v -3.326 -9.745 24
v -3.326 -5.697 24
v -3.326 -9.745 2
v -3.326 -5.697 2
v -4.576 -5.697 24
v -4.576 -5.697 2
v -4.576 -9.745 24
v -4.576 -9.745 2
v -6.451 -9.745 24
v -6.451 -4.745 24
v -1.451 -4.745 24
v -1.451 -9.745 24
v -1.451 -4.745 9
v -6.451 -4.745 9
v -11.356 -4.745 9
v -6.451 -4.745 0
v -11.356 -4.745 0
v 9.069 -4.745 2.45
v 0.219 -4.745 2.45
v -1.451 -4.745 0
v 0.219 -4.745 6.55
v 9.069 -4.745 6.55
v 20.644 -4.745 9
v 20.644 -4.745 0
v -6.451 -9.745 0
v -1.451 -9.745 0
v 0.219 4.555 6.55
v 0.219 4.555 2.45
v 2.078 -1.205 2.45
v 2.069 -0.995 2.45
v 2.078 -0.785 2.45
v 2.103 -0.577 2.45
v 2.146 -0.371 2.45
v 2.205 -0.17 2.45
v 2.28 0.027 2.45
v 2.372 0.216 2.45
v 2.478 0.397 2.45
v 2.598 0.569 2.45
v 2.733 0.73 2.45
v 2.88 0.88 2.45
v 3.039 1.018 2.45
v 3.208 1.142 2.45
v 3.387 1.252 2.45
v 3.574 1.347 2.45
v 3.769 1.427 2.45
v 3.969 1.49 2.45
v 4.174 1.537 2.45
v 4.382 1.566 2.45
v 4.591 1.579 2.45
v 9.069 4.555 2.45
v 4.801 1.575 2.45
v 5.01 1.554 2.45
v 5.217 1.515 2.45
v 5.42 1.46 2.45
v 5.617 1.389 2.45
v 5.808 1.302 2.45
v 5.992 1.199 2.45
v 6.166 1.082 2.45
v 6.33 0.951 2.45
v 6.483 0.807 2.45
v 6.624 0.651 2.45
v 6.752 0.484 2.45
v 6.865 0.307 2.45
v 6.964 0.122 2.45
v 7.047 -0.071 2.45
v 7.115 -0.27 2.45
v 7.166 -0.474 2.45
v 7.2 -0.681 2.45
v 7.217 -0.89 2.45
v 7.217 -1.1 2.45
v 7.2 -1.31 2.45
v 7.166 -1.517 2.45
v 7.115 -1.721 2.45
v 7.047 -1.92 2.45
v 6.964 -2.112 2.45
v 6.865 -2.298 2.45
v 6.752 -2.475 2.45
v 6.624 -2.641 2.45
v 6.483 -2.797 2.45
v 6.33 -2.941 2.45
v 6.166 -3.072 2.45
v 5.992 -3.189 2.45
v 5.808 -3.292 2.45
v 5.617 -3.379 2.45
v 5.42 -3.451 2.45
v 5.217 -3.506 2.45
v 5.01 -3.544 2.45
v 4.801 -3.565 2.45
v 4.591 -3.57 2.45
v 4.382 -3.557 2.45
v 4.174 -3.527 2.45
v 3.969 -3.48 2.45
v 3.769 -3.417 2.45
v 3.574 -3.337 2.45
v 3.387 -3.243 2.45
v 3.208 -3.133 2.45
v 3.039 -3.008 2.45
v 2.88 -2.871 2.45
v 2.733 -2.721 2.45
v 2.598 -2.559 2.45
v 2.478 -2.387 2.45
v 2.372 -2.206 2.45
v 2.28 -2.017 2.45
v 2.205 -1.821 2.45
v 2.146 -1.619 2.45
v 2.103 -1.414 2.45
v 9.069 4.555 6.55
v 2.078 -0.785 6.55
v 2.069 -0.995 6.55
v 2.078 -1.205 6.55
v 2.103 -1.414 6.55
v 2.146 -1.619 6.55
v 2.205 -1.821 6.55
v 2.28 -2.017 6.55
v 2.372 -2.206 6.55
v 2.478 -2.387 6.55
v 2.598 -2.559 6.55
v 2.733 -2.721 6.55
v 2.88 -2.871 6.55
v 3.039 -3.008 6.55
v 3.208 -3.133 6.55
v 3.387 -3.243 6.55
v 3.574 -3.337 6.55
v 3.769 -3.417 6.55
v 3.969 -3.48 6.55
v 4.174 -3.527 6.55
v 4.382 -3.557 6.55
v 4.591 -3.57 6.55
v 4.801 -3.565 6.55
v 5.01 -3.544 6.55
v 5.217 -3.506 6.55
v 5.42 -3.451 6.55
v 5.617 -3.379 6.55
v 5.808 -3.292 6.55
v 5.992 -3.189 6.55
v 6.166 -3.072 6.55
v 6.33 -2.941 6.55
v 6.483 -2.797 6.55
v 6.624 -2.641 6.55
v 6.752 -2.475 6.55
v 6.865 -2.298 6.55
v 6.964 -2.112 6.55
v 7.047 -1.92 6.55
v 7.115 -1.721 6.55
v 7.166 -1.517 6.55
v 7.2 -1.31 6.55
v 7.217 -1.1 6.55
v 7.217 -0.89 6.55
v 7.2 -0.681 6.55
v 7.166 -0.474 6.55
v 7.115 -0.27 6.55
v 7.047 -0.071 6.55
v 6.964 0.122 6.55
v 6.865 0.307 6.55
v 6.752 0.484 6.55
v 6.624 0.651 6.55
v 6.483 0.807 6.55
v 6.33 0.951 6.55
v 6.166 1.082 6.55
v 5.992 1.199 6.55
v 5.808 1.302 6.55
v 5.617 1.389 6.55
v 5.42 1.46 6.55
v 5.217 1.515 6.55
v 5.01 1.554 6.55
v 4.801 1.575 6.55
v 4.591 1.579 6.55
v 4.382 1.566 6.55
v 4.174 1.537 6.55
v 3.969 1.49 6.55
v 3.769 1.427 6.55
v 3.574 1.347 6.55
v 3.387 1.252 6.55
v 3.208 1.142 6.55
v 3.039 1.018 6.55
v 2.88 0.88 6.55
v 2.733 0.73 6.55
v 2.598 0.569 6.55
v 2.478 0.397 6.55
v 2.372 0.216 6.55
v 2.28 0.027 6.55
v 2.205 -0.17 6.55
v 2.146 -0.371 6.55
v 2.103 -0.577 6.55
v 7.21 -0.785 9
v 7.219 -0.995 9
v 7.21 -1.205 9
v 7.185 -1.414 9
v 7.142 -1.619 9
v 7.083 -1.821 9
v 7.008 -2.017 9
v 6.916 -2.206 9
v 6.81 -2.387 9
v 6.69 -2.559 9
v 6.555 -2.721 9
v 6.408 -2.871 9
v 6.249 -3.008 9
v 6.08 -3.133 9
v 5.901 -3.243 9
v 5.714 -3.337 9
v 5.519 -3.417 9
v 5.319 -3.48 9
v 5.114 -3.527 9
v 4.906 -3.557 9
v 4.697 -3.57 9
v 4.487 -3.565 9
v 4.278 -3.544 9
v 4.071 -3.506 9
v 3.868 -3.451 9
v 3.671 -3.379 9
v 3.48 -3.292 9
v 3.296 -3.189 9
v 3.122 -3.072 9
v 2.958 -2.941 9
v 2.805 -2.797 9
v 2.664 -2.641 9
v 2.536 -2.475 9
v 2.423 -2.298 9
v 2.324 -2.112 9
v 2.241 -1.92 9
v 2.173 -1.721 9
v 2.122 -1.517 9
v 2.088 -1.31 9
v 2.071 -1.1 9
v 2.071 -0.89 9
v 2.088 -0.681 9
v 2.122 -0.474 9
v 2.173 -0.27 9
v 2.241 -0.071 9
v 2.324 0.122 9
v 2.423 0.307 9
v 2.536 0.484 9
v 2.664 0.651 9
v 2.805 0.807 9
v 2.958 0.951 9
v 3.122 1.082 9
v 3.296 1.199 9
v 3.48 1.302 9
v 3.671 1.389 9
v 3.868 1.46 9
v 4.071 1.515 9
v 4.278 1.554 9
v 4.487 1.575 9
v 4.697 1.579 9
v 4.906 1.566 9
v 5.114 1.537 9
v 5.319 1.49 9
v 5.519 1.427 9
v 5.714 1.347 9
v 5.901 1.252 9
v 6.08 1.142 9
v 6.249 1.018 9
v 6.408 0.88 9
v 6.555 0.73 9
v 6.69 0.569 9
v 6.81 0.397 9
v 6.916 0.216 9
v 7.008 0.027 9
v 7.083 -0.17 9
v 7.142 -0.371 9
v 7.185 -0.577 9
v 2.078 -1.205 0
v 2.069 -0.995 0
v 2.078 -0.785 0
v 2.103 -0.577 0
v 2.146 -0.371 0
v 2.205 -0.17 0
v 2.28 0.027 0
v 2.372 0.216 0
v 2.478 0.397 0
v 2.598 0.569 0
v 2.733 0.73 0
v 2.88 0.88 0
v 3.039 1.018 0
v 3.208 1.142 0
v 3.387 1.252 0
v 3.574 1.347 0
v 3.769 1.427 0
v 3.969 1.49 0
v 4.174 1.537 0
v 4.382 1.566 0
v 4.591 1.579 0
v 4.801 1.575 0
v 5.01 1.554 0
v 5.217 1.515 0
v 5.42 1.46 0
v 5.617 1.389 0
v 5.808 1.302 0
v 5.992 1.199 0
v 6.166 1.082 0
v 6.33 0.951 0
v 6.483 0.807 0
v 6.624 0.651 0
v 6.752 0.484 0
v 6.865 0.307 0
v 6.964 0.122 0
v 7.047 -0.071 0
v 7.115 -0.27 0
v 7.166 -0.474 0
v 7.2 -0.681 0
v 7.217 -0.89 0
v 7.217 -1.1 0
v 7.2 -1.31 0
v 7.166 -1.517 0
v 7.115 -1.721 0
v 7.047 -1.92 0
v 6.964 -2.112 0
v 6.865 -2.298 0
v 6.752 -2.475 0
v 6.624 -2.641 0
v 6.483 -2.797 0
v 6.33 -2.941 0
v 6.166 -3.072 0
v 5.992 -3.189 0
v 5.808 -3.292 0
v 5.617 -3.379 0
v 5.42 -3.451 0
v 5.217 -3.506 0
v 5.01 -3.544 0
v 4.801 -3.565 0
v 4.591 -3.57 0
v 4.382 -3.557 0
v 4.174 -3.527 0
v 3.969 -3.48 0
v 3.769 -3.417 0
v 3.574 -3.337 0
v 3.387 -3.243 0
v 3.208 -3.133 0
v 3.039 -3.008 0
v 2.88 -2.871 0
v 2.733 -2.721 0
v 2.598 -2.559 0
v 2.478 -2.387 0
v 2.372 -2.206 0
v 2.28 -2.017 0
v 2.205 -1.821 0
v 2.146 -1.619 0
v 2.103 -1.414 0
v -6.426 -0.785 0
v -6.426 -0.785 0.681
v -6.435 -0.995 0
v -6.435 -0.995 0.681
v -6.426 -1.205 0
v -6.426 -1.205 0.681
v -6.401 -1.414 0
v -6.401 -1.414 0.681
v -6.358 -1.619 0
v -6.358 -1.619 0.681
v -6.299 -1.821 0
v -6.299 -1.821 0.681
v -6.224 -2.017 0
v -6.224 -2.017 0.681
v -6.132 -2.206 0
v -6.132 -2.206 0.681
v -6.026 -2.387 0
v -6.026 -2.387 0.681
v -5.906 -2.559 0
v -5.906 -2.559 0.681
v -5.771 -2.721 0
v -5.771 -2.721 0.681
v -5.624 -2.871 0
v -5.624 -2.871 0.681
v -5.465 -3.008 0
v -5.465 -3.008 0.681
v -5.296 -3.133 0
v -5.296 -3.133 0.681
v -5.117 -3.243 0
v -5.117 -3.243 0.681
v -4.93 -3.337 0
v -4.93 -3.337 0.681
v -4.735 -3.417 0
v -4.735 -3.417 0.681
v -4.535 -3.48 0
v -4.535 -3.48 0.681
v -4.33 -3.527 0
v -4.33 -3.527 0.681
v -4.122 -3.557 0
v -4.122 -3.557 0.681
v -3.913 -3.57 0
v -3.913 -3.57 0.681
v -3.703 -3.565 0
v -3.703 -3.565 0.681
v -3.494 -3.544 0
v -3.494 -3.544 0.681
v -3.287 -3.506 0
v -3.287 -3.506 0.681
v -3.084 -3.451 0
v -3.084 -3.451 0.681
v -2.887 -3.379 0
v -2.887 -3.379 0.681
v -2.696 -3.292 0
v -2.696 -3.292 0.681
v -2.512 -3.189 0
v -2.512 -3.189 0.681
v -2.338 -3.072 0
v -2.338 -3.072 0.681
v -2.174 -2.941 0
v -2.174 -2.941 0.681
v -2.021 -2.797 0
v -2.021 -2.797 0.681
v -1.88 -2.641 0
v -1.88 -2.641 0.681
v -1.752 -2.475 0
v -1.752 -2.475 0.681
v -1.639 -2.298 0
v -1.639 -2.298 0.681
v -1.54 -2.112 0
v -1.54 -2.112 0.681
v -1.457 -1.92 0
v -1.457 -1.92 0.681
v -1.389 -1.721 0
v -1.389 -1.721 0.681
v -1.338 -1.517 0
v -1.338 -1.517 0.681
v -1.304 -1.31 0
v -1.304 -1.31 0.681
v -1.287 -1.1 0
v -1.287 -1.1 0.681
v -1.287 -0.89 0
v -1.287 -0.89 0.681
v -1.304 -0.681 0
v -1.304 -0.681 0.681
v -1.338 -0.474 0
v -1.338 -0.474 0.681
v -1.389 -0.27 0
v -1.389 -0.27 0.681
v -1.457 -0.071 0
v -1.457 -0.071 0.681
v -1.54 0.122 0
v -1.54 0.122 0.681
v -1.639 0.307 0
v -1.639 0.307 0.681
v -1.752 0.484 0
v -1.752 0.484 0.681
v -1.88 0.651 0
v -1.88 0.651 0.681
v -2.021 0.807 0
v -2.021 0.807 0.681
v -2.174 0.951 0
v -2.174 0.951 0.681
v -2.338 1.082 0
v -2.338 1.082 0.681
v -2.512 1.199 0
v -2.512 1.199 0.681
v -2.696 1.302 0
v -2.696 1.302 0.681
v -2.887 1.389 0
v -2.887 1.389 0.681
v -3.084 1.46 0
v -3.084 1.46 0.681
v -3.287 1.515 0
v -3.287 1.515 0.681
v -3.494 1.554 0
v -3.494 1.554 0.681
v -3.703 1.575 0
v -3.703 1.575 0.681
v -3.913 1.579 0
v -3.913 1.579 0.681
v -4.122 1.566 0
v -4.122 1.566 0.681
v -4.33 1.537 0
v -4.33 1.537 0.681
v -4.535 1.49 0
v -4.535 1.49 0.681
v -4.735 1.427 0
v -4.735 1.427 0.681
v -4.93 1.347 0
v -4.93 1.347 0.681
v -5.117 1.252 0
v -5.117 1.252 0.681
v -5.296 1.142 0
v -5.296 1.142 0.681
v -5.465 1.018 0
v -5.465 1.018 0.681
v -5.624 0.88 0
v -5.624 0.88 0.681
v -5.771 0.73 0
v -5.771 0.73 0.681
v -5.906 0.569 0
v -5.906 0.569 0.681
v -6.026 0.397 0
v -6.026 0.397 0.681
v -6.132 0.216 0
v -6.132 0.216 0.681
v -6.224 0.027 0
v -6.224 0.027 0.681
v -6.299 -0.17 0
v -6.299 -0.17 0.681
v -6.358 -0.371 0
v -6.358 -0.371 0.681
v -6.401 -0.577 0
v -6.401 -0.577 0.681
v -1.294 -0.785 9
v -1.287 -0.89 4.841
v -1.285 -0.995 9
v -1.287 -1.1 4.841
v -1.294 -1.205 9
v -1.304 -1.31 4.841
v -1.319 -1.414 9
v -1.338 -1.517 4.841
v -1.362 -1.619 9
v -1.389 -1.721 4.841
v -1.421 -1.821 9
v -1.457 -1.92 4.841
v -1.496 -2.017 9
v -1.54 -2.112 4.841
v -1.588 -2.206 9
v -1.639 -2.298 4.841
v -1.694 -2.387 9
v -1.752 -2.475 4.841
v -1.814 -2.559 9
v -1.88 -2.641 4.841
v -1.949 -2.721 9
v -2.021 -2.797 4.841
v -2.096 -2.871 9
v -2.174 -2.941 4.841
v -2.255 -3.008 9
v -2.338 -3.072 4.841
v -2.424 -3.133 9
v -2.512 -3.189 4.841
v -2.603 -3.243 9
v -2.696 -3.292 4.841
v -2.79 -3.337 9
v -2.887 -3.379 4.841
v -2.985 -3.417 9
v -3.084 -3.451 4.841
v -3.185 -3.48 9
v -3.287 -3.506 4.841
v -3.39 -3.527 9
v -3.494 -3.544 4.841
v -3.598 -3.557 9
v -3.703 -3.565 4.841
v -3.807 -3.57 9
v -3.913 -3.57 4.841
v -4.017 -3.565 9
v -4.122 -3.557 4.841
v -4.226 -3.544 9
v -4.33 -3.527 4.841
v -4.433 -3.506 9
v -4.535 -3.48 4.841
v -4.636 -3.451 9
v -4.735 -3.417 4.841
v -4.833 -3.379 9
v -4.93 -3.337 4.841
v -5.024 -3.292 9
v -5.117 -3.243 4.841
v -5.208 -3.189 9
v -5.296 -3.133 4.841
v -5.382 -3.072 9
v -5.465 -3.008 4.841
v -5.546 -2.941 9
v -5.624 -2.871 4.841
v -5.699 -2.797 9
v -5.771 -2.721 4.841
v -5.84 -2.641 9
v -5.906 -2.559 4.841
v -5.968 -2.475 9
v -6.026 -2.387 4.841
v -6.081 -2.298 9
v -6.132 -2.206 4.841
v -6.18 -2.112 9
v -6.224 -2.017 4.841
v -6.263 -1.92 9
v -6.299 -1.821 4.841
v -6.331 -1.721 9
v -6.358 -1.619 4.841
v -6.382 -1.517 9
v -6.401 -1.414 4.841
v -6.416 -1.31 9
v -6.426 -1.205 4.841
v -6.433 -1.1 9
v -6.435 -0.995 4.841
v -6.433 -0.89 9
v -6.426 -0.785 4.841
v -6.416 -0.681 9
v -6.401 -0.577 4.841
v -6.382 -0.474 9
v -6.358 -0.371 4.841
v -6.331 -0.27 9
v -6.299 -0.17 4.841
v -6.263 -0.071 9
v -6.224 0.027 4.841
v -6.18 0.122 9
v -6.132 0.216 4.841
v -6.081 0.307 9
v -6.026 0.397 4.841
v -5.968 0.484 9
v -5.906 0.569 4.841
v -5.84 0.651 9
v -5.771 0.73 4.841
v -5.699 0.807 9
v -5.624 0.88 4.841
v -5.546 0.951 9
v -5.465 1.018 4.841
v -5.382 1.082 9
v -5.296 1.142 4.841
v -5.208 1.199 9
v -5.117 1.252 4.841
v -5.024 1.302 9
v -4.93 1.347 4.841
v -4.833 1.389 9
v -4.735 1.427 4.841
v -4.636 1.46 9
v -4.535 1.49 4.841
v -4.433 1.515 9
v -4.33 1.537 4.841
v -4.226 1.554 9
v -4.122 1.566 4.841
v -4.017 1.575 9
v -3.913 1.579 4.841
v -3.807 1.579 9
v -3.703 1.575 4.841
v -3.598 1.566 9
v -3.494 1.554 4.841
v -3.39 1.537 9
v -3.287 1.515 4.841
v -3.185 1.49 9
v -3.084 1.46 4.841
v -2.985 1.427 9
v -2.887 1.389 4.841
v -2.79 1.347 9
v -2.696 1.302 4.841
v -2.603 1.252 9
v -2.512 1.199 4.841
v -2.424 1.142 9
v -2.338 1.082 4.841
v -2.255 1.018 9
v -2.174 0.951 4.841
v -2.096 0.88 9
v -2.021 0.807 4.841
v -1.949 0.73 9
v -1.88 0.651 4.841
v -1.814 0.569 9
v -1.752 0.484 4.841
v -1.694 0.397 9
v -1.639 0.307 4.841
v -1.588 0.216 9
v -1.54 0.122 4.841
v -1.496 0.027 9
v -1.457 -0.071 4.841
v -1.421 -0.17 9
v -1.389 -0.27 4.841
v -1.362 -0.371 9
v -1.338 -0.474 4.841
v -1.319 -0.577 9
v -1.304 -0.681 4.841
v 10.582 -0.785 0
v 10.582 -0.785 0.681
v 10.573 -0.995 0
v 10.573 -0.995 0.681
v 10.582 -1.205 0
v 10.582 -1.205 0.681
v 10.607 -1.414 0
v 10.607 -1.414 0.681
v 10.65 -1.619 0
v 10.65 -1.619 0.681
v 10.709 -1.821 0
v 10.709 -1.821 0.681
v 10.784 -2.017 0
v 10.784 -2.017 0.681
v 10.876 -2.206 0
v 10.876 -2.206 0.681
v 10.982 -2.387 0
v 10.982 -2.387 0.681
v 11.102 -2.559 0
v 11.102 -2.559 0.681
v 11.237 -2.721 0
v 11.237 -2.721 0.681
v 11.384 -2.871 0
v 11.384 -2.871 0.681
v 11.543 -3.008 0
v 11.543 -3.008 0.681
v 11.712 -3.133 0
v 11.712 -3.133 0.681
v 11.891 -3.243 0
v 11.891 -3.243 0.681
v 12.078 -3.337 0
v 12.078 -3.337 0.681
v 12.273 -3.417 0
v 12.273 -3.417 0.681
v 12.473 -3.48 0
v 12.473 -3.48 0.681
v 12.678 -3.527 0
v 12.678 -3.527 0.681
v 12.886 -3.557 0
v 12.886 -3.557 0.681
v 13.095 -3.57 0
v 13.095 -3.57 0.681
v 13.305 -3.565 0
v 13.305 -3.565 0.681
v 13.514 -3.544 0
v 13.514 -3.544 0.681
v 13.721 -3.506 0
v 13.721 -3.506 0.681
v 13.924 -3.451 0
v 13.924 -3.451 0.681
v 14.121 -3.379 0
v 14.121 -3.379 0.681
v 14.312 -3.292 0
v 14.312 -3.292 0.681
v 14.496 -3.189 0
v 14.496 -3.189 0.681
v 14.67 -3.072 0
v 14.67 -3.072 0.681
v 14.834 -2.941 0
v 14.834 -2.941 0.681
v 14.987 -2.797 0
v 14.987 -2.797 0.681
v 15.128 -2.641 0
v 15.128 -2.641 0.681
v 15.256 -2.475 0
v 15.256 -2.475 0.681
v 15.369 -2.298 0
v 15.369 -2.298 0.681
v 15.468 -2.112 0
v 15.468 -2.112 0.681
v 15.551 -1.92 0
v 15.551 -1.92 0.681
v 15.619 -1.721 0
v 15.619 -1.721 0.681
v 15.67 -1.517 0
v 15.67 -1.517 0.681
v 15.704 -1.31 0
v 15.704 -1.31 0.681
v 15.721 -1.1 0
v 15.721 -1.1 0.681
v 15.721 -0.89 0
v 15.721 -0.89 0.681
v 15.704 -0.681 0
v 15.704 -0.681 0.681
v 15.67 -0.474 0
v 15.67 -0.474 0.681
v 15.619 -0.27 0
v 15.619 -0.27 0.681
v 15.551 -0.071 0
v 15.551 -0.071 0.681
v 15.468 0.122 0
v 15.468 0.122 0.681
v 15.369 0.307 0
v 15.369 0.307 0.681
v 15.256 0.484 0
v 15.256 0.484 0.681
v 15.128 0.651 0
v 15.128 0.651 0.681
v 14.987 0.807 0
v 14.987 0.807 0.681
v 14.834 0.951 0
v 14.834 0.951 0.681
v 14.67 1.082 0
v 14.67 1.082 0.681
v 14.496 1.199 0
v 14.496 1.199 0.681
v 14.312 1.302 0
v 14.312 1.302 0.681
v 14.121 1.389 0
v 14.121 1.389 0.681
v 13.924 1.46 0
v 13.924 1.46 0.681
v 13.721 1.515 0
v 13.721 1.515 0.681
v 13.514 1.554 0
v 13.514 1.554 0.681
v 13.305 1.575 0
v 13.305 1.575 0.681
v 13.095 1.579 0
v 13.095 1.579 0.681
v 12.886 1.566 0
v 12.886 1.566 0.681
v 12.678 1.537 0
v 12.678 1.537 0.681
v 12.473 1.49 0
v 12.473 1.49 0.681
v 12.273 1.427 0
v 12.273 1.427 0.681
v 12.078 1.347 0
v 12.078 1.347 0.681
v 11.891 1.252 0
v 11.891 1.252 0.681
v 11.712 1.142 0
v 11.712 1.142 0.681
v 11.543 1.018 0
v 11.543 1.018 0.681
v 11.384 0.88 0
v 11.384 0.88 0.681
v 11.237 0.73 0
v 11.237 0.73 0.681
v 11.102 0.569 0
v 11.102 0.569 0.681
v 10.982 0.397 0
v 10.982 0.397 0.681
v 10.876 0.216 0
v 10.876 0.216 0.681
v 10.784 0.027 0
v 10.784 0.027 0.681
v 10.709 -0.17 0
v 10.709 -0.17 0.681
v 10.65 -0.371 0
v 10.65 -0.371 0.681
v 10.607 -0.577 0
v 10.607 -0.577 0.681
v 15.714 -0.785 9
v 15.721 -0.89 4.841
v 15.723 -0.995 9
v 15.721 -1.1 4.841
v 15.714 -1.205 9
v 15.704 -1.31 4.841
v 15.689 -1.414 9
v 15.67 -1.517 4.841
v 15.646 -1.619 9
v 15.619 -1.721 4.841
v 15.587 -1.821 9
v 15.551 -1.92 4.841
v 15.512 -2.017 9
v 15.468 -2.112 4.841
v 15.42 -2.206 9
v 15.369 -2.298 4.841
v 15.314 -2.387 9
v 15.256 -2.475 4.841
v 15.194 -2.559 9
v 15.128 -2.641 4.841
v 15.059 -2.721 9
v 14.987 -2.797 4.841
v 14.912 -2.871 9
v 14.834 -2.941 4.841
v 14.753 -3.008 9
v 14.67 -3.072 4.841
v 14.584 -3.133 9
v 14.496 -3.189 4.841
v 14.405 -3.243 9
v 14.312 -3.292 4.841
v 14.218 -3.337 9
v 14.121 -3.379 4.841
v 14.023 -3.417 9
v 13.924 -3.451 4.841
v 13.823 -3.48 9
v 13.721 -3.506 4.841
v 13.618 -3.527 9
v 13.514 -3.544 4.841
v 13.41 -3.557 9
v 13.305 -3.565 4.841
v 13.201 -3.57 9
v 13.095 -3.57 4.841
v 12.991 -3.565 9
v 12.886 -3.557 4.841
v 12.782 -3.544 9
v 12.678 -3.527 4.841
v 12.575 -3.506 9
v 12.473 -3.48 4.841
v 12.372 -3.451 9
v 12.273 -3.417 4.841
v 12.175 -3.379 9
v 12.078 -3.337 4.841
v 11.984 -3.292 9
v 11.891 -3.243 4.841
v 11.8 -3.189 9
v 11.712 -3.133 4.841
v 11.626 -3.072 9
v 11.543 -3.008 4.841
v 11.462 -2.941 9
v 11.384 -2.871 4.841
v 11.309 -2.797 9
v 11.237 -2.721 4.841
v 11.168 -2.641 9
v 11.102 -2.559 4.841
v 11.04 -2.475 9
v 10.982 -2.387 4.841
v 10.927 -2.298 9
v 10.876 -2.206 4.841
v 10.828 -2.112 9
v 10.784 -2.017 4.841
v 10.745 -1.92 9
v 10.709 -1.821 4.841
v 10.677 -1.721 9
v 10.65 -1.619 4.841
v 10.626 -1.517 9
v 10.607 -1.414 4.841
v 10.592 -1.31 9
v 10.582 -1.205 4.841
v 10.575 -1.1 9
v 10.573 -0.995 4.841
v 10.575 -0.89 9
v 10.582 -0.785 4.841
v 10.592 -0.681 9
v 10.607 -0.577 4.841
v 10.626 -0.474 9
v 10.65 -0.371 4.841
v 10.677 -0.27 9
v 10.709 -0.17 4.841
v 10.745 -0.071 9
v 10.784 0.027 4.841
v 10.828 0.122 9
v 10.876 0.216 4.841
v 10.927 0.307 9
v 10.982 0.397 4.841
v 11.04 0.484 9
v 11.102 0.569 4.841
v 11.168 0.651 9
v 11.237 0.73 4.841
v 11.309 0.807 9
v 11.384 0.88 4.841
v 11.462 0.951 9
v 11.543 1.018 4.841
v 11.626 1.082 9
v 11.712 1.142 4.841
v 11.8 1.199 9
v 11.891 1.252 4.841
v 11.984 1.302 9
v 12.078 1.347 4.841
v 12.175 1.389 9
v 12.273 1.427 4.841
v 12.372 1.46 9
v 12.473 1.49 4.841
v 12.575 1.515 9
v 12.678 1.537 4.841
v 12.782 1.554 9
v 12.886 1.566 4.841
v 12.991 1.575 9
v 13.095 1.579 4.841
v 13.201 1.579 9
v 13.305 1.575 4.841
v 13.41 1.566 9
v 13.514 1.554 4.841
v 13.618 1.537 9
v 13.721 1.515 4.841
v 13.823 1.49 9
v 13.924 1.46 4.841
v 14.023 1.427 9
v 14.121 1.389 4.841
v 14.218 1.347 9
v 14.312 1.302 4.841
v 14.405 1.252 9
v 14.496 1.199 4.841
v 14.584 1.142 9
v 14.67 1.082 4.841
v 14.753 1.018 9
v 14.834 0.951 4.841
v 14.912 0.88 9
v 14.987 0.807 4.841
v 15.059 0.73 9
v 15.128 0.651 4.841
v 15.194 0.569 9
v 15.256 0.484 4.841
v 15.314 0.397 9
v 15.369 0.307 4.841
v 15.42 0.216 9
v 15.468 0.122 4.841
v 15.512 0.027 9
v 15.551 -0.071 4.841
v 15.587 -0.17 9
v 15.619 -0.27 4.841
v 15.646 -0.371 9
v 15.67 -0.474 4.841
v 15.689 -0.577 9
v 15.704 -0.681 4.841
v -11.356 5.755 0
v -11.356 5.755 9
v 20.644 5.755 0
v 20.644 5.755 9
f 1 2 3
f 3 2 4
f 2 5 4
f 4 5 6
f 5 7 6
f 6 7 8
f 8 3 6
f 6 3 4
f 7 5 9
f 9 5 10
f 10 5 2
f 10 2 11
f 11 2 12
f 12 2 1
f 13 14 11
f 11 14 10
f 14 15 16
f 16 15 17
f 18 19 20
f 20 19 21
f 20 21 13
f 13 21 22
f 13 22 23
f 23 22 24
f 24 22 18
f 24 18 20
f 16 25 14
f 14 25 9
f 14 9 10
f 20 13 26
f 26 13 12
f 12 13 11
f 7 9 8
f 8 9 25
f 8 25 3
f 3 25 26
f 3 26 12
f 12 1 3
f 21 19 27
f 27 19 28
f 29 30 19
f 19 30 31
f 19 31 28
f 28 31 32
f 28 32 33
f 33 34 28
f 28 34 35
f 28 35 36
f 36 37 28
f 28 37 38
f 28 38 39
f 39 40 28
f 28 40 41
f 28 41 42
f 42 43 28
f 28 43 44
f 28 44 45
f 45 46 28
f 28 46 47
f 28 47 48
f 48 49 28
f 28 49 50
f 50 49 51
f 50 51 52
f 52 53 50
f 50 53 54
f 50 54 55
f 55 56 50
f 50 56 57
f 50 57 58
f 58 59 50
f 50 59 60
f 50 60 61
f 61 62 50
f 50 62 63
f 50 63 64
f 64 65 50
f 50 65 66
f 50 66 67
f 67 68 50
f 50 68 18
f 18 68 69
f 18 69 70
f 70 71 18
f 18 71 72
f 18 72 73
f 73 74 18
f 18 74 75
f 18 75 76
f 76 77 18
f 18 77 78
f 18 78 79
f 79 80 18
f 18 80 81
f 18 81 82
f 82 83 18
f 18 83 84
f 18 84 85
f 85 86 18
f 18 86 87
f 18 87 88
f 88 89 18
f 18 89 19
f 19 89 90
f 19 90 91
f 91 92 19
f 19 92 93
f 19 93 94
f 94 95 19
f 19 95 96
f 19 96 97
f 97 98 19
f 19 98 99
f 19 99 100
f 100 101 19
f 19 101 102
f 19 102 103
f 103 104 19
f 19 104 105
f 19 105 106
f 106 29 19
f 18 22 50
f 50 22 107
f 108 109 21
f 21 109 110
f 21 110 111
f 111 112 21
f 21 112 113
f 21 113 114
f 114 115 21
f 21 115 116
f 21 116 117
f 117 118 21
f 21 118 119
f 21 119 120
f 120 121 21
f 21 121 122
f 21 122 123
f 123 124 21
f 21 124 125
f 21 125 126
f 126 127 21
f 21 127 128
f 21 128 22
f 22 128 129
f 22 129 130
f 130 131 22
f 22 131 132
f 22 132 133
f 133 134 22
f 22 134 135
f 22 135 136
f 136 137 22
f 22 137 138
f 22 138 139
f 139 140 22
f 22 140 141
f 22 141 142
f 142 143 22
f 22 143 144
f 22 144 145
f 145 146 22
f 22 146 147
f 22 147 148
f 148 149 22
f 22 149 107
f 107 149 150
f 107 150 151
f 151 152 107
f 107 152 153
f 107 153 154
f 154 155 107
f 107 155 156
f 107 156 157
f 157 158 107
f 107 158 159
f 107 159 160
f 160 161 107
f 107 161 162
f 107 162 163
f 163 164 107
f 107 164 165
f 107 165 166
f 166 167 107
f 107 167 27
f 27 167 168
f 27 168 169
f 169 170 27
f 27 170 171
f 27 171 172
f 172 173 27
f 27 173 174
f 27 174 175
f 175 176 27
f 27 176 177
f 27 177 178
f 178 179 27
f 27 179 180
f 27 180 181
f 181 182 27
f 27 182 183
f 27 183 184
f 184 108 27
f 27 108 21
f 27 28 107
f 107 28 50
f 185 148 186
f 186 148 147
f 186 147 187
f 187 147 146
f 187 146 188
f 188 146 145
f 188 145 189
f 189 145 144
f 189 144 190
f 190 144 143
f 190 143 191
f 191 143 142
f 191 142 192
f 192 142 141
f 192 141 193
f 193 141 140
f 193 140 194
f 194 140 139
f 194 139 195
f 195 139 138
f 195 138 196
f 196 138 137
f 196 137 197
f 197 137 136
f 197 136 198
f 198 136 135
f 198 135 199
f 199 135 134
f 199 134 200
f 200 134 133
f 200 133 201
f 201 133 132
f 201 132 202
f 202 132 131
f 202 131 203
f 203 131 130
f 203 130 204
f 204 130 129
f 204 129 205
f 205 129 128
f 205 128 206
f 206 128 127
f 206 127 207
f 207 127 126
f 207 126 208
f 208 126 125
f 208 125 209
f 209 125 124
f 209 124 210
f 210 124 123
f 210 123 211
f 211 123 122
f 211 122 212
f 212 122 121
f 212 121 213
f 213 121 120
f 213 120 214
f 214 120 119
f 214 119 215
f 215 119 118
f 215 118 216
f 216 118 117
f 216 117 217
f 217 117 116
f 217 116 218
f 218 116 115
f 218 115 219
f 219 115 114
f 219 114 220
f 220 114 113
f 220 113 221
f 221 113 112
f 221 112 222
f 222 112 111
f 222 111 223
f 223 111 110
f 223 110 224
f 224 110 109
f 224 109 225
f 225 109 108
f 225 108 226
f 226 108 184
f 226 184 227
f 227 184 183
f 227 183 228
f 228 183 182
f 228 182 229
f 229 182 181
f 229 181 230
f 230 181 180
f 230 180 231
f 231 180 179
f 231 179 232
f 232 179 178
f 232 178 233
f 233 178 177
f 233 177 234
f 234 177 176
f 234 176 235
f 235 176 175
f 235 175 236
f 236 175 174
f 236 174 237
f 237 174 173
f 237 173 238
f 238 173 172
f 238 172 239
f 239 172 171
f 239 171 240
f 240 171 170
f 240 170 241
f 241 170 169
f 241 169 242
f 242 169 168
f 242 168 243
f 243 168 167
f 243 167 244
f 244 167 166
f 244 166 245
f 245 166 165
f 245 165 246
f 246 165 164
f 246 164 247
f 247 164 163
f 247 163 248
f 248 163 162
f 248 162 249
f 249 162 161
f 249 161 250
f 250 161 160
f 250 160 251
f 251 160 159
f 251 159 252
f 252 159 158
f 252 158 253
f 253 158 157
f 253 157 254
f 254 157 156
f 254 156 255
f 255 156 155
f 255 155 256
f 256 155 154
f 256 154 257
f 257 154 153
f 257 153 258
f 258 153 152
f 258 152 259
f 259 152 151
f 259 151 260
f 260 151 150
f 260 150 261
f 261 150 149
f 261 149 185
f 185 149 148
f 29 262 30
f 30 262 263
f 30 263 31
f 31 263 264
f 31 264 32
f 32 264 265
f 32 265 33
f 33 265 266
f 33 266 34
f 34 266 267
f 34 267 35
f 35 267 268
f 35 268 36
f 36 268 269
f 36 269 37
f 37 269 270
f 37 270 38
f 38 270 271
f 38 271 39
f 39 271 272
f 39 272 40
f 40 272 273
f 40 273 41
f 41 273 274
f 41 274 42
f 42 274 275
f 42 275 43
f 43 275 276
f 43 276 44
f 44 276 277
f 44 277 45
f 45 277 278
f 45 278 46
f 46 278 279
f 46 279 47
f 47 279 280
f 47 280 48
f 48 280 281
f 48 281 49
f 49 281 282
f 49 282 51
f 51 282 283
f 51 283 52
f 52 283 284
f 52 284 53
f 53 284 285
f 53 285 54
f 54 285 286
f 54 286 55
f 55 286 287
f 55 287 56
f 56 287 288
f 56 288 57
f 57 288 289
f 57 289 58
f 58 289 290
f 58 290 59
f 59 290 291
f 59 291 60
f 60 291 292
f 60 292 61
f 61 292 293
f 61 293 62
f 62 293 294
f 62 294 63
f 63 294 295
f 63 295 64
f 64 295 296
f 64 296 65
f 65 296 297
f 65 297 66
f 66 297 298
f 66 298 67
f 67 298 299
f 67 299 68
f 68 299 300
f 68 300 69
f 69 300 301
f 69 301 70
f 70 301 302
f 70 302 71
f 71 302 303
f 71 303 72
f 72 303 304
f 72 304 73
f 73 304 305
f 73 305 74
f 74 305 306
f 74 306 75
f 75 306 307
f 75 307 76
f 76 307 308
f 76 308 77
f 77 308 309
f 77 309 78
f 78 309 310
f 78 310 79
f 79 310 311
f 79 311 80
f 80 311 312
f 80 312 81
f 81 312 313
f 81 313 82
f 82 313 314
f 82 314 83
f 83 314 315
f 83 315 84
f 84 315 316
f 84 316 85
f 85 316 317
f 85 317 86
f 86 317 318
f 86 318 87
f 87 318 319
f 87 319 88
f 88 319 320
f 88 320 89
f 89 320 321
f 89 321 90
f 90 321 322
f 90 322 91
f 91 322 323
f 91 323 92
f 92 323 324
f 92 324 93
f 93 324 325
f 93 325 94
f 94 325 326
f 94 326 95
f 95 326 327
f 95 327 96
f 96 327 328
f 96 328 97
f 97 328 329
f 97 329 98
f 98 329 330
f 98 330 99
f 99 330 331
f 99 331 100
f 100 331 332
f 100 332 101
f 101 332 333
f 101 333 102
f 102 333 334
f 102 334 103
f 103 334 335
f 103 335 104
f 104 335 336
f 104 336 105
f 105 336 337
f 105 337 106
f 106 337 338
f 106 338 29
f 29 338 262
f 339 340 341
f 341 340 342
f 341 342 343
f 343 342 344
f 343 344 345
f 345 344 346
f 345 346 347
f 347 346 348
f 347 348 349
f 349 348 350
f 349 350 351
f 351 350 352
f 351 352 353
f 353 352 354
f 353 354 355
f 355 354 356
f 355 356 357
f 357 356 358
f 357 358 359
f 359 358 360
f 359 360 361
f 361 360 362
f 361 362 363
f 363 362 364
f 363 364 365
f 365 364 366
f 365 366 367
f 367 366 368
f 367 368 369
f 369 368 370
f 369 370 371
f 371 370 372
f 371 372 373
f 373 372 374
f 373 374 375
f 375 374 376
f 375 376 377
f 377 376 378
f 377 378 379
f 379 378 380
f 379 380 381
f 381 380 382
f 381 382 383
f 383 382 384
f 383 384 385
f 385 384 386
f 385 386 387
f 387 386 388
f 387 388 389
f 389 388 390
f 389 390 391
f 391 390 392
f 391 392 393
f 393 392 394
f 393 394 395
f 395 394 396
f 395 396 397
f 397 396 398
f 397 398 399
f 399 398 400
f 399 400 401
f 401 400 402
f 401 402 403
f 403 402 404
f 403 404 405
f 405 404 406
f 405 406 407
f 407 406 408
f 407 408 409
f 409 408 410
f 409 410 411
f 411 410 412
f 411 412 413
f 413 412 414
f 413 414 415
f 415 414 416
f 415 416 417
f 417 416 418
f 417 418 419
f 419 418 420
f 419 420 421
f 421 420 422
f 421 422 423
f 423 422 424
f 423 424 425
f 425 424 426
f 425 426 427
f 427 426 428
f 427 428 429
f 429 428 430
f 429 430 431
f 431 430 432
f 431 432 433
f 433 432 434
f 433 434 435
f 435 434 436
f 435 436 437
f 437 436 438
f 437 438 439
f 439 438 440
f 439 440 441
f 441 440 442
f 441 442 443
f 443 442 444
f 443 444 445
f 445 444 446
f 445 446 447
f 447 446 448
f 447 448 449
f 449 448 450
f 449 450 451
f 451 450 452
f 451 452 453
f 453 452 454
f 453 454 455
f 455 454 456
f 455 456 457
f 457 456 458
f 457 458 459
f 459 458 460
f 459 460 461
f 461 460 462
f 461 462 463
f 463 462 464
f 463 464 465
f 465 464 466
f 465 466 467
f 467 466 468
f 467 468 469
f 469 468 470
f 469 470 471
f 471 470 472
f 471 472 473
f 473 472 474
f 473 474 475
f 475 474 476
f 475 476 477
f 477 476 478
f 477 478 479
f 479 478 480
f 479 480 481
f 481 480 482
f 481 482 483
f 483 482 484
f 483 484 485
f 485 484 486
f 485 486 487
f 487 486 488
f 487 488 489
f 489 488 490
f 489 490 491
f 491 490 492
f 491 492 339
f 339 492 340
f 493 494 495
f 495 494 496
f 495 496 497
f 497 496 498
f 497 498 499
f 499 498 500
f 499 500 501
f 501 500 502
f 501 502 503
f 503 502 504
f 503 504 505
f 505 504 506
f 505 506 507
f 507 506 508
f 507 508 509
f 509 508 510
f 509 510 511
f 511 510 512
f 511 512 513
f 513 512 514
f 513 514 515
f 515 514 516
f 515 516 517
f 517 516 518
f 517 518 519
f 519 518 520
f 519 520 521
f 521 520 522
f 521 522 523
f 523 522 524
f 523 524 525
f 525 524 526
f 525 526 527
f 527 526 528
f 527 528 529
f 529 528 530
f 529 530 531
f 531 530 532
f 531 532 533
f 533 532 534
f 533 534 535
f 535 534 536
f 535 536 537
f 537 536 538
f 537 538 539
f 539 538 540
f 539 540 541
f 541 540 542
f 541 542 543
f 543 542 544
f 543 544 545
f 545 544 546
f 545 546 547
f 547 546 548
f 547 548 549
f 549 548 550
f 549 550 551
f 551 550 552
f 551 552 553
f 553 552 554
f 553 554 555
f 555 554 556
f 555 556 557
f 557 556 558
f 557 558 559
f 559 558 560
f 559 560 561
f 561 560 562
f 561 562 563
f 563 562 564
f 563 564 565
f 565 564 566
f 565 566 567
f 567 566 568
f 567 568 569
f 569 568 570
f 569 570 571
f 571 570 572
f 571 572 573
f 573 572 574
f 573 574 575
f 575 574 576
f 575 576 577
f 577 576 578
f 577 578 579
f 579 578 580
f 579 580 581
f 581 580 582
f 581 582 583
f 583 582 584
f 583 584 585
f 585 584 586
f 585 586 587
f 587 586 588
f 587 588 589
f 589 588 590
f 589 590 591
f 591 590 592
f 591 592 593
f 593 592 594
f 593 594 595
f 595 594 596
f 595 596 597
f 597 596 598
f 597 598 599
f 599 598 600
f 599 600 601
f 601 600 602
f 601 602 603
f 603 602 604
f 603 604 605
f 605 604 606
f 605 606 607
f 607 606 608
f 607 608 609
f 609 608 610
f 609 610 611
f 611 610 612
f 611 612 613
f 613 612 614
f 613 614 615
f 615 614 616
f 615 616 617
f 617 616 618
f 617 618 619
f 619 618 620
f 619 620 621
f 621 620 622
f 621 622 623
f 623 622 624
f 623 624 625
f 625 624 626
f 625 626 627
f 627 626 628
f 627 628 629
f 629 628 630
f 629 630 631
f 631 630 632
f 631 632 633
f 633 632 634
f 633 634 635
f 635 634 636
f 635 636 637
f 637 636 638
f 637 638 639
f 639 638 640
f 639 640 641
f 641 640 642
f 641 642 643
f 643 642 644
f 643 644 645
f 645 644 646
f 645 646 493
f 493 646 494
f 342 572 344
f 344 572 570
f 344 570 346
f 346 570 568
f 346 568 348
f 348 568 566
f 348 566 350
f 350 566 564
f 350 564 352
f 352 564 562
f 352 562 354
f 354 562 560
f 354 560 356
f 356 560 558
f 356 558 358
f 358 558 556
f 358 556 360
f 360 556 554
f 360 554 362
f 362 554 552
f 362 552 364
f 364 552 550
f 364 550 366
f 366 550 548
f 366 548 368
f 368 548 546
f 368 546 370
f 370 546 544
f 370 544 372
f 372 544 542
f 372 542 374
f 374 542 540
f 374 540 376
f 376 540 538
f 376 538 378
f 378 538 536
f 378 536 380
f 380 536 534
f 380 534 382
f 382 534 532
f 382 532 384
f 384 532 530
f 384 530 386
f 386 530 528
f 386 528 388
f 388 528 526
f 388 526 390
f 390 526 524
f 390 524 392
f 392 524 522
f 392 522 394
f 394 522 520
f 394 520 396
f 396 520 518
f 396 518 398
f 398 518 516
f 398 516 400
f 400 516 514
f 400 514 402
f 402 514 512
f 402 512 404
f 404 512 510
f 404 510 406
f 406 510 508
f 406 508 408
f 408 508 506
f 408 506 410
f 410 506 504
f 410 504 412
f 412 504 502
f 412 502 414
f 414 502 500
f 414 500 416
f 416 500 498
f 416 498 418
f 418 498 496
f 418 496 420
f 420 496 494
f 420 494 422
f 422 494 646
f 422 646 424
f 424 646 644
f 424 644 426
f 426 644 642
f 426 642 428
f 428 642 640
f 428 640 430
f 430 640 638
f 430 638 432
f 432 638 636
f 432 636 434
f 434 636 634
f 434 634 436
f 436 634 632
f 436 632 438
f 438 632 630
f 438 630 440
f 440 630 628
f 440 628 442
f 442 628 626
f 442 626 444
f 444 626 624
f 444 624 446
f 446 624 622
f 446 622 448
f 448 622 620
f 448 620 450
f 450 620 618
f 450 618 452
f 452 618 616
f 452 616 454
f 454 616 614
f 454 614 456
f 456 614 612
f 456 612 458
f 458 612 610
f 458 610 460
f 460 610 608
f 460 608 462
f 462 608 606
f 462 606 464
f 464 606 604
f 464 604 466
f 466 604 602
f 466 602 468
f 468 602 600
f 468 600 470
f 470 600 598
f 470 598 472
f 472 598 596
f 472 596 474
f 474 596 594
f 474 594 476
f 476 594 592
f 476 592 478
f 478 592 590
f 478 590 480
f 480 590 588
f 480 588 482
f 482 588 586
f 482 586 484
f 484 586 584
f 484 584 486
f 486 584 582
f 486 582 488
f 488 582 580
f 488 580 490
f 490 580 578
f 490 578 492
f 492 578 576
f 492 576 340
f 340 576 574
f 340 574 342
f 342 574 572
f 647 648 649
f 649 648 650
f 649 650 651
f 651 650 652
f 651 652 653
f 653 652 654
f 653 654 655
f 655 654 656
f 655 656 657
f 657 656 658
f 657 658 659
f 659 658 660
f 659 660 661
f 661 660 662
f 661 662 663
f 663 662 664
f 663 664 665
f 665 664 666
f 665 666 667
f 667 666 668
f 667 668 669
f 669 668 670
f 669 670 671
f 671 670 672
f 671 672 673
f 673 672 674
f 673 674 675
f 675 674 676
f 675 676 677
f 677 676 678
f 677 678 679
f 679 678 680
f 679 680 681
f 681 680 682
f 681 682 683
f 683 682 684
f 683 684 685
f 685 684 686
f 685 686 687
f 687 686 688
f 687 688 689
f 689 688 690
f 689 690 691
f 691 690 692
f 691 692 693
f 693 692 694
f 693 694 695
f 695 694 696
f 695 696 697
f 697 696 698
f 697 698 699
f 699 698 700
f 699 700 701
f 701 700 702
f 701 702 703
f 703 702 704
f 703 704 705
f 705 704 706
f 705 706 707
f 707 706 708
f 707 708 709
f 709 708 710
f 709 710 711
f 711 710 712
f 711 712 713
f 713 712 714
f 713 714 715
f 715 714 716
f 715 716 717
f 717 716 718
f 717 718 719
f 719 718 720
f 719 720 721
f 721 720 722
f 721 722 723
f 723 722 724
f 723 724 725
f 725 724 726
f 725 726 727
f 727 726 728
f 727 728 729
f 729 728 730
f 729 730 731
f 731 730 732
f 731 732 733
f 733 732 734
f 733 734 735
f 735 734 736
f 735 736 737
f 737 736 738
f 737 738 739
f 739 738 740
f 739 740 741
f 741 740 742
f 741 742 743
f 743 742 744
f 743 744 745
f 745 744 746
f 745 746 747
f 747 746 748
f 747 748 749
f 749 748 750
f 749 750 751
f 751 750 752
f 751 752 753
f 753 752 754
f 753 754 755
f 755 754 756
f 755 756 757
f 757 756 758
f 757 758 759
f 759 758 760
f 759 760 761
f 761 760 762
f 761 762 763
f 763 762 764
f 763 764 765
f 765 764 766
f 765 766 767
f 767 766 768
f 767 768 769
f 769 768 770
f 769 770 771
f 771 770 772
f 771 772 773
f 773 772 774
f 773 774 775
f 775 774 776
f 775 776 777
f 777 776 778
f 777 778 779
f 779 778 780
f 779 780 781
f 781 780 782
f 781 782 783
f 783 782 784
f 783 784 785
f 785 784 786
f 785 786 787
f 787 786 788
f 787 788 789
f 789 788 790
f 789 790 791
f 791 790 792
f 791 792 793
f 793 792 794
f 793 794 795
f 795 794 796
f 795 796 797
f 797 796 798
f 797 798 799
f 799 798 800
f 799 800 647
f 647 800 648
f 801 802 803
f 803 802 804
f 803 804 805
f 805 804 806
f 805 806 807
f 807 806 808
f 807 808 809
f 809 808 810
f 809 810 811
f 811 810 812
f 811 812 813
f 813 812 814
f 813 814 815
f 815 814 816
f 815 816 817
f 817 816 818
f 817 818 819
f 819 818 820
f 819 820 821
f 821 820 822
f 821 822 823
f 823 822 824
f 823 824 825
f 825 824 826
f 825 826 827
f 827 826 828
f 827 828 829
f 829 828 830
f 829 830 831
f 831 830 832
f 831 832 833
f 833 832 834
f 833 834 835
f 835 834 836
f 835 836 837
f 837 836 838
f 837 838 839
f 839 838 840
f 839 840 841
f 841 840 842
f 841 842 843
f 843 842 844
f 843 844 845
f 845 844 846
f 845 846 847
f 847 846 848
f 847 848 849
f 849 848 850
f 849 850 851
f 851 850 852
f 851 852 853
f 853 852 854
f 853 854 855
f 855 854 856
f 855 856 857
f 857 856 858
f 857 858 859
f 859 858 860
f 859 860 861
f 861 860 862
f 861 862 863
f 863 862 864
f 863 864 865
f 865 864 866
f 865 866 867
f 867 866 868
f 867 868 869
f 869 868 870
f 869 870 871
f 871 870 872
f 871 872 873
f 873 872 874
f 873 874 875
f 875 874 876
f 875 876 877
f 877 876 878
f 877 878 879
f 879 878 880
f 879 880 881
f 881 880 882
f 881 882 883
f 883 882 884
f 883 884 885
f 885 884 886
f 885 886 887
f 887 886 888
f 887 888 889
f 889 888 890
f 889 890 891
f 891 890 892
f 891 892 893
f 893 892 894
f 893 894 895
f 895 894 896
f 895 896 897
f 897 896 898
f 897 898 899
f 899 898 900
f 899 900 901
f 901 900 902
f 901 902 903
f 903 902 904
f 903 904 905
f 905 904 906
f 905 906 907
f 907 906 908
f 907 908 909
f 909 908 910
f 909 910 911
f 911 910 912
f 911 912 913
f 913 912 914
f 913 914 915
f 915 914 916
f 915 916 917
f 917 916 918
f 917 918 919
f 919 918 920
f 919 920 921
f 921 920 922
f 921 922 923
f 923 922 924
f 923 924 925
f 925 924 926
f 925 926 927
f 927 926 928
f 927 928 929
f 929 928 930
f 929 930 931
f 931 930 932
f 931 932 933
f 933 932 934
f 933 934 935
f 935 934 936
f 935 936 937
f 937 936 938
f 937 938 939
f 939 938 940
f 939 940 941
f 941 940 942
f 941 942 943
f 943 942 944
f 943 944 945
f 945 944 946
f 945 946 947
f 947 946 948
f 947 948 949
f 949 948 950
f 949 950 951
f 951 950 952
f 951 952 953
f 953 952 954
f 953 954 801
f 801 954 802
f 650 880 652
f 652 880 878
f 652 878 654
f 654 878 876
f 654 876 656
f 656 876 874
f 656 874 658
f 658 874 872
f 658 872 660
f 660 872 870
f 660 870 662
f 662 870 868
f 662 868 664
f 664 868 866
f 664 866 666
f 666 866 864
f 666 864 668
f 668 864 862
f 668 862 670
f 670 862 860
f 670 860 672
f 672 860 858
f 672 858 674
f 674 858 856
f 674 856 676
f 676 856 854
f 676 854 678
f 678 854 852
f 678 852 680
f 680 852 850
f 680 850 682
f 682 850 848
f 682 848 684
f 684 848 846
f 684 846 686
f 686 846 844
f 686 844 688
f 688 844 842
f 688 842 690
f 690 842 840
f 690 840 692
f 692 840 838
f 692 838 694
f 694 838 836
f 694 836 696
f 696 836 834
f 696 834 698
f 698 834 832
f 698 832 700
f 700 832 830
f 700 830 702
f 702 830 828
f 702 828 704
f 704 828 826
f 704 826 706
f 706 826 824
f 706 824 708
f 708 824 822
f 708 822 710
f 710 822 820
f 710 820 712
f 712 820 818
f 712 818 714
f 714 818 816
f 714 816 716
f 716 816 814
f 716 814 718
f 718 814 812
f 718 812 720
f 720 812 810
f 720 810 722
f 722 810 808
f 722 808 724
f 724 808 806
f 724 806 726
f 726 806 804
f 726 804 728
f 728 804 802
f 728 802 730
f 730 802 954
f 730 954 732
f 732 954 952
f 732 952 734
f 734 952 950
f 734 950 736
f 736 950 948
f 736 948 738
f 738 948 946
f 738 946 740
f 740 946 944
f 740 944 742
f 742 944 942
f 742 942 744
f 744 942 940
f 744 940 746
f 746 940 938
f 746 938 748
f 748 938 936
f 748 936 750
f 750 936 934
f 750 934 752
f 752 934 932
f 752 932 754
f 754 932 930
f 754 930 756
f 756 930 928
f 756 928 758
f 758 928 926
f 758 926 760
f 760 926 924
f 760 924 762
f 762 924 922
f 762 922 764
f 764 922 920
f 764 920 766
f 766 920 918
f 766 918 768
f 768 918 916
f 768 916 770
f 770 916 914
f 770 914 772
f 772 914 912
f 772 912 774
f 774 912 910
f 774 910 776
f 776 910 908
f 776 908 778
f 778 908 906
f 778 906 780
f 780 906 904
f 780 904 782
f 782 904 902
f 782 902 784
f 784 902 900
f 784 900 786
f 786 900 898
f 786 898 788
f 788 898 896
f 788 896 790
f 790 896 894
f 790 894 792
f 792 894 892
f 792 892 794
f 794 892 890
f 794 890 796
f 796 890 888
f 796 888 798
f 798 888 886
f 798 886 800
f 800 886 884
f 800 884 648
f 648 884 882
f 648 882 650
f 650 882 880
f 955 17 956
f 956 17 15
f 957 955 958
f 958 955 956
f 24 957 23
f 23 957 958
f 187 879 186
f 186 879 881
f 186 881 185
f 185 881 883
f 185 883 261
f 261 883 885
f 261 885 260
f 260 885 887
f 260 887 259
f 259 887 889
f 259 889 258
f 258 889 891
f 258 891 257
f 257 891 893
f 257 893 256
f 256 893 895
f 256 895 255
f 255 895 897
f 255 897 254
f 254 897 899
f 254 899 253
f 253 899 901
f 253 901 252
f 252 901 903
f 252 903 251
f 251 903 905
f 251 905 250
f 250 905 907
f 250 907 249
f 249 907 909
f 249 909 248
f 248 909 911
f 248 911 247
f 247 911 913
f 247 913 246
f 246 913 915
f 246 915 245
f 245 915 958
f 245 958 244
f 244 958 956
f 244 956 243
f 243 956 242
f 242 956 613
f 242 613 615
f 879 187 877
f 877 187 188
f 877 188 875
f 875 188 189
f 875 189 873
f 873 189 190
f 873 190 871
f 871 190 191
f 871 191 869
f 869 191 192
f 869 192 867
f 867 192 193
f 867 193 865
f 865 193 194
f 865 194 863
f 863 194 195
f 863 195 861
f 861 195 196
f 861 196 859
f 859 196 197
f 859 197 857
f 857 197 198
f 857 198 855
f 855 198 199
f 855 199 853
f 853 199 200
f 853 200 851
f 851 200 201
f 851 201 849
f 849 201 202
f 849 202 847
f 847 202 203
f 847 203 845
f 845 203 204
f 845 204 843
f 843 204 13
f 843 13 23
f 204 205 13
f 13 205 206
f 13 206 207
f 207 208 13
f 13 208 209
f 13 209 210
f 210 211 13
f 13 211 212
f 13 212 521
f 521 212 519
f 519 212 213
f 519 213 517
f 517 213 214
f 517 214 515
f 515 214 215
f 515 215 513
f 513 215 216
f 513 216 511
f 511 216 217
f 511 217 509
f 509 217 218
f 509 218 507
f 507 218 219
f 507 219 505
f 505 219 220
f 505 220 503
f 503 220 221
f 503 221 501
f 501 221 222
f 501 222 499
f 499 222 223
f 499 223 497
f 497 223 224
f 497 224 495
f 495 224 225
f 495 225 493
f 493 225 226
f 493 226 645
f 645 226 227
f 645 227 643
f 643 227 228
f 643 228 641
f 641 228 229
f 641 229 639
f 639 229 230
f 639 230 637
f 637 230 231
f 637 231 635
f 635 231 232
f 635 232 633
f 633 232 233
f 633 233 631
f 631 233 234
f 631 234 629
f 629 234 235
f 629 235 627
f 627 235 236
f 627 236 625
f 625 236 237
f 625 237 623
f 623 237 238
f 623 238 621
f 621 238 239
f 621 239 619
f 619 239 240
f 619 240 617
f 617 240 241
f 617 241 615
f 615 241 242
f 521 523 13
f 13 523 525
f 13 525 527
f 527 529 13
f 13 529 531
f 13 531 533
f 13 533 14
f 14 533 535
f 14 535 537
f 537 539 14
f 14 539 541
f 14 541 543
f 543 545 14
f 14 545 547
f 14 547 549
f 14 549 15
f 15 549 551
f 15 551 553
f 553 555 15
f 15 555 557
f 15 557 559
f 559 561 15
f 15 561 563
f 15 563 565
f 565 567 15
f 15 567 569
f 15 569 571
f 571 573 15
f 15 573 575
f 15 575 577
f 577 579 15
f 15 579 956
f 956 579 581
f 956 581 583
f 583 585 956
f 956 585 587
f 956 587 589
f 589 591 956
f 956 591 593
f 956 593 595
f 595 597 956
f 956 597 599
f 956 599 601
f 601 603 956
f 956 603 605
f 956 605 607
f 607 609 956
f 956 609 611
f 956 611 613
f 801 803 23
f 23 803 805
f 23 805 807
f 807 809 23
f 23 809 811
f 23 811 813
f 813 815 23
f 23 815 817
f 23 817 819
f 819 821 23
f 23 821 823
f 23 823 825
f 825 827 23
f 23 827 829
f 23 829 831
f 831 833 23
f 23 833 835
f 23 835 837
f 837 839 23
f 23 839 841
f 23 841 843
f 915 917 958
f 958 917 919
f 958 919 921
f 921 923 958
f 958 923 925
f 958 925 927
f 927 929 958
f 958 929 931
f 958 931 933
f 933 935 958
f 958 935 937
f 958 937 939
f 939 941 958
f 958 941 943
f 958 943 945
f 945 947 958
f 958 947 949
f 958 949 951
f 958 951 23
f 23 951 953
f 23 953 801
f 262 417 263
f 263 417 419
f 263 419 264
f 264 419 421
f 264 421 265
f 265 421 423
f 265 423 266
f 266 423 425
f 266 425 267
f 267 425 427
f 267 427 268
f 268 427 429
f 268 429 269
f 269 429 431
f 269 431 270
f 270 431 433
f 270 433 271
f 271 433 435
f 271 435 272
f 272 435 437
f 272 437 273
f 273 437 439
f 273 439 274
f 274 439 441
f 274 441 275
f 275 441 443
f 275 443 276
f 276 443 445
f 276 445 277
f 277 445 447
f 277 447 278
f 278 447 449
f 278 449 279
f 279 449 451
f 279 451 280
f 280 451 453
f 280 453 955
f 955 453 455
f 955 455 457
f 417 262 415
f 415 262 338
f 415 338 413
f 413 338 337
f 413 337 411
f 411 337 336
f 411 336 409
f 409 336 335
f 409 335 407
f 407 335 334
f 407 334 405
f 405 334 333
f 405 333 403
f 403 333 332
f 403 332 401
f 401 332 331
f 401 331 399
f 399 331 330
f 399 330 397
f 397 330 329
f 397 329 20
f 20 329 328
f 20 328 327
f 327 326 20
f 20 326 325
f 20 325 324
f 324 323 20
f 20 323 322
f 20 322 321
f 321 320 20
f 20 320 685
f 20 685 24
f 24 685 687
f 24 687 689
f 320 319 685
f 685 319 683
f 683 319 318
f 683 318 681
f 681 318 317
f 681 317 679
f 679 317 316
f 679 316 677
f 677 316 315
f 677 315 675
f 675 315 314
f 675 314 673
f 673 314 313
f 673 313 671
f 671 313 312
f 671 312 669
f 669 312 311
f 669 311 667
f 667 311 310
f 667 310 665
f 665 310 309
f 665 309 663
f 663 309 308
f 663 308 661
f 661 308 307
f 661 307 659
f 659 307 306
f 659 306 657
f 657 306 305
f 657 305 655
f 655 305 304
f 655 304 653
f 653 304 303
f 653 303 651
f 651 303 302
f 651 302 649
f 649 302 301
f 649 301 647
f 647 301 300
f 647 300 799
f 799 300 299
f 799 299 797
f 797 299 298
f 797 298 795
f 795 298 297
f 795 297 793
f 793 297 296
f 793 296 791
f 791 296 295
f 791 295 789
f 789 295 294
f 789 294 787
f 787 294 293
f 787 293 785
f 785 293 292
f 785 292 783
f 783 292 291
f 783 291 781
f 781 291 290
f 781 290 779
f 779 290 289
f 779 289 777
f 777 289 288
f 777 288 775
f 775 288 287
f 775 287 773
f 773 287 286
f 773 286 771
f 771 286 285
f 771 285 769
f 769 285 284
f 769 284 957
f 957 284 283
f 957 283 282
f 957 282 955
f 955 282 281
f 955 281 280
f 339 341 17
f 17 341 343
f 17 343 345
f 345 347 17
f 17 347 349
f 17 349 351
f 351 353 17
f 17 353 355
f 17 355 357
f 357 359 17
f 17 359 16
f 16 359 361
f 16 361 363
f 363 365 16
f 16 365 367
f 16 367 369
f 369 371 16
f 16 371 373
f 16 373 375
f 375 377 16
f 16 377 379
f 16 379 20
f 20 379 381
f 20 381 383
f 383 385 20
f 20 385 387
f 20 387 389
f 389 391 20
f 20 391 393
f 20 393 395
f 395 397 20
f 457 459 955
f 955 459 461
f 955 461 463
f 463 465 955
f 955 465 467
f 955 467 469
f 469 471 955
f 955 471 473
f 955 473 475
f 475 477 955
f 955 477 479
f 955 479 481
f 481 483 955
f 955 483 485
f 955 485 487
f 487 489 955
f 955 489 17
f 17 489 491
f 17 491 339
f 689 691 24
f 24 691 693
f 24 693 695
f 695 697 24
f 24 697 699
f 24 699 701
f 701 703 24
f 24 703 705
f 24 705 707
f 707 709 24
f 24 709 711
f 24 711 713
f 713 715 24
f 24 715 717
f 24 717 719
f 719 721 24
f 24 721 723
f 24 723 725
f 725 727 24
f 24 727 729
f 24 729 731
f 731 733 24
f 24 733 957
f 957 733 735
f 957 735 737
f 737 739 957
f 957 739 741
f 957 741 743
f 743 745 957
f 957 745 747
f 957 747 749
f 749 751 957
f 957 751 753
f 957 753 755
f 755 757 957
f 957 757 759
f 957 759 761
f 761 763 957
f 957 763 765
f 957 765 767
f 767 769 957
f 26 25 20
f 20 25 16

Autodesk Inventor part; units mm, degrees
ref_plane "YZ Plane" through (0, 0, 0) normal (1, 0, 0) x (0, 1, 0)
ref_plane "XZ Plane" through (0, 0, 0) normal (0, 1, 0) x (-1, 0, 0)
ref_plane "XY Plane" through (0, 0, 0) normal (0, 0, 1) x (1, 0, 0)
sketch "Skizze1" plane through (0, 0, 0) normal (0, 0, 1) x (1, 0, 0)
  line L0 (-11.356, -4.7452) -> (20.644, -4.7452)
  line L1 (20.644, -4.7452) -> (20.644, 5.7548)
  line L2 (20.644, 5.7548) -> (-11.356, 5.7548)
  line L3 (-11.356, 5.7548) -> (-11.356, -4.7452)
  point P0 (0, 0)
  dimension "d0" = 32
  dimension "d1" = 10.5
extrude "Extrusion1" add sketch "Skizze1" along normal blind 9
sketch "Skizze2" plane through (0, 0, 9) normal (0, 0, 1) x (1, 0, 0)
  line L0 (20.644, -4.7452) -> (20.644, 5.7548) projected
  line L1 (-11.356, -4.7452) -> (20.644, -4.7452) projected
  point P0 (0, 0)
  point P1 (-3.86, -0.9952)
  point P2 (4.644, -0.9952)
  point P3 (13.148, -0.9952)
  dimension "d4" = 8.504
  dimension "d5" = 8.504
  dimension "d6" = 7.496
  dimension "d20" = 3.75
  dimension "d21" = 3.75
hole "Bohrung1" at (-3.86, -0.9952, 9) at (4.644, -0.9952, 9) at (13.148, -0.9952, 9) direction (0, 0, -1) diameter 5.15 end through all
sketch "Skizze3" plane through (0, 0, 9) normal (0, 0, 1) x (1, 0, 0)
  point P0 (0, 0)
sketch "Skizze4" plane through (-11.356, -4.7452, 0) normal (0, -1, 0) x (1, 0, 0)
  line L0 (11.575, 6.55) -> (20.425, 6.55)
  line L1 (20.425, 6.55) -> (20.425, 2.45)
  line L2 (20.425, 2.45) -> (11.575, 2.45)
  line L3 (11.575, 2.45) -> (11.575, 6.55)
  line L4 (32, 0) -> (32, 9) projected
  line L5 (0, 9) -> (32, 9) projected
  point P0 (11.356, 0)
  dimension "d14" = 8.85
  dimension "d15" = 4.1
  dimension "d16" = 11.575
  dimension "d17" = 2.45
extrude "Extrusion2" cut sketch "Skizze4" against normal blind 9.3
sketch "Skizze5" plane through (0, 0, 9) normal (0, 0, 1) x (1, 0, 0)
  point P0 (0, 0)
sketch "Skizze6" plane through (-11.356, -4.7452, 0) normal (0, -1, 0) x (1, 0, 0)
  line L0 (4.905, 0) -> (9.905, 0)
  line L1 (9.905, 0) -> (9.905, 2)
  line L2 (9.905, 2) -> (4.905, 2)
  line L3 (4.905, 2) -> (4.905, 0)
  line L4 (0, 0) -> (0, 9) projected
  point P0 (11.356, 0)
  dimension "d22" = 5
  dimension "d23" = 2
  dimension "d24" = 4.905
sketch "Skizze7" plane through (-11.356, -4.7452, 0) normal (0, -1, 0) x (1, 0, 0)
  point P0 (11.356, 0)
extrude "Extrusion3" add sketch "Skizze6" along normal blind 5
sketch "Skizze8" plane through (-6.451, -4.7452, 2) normal (0, 0, 1) x (1, 0, 0)
  line L0 (0, -5) -> (5, -5) projected
  line L1 (0, 0) -> (0, -5) projected
  line L2 (5, -5) -> (0, -5)
  line L3 (0, -5) -> (0, 0)
  line L4 (0, 0) -> (5, 0)
  line L5 (5, 0) -> (5, -5)
  point P0 (6.451, 4.7452)
extrude "Extrusion4" add sketch "Skizze8" along normal blind 22
sketch "Skizze9" plane through (-6.451, -4.7452, 24) normal (0, 0, 1) x (1, 0, 0)
  line L0 (0, -5) -> (5, -5) projected
  line L1 (1.875, -5) -> (3.125, -5)
  line L2 (3.125, -5) -> (3.125, -0.952)
  line L3 (3.125, -0.952) -> (1.875, -0.952)
  line L4 (1.875, -0.952) -> (1.875, -5)
  line L5 (5, -5) -> (5, 0) projected
  line L6 (0, 0) -> (0, -5) projected
  point P0 (6.451, 4.7452)
  dimension "d29" = 1.875
  dimension "d30" = 1.875
  dimension "d31" = 4.048
extrude "Extrusion5" cut sketch "Skizze9" against normal blind 22
properties part number "Objektträgerhalter 3b Neu"
